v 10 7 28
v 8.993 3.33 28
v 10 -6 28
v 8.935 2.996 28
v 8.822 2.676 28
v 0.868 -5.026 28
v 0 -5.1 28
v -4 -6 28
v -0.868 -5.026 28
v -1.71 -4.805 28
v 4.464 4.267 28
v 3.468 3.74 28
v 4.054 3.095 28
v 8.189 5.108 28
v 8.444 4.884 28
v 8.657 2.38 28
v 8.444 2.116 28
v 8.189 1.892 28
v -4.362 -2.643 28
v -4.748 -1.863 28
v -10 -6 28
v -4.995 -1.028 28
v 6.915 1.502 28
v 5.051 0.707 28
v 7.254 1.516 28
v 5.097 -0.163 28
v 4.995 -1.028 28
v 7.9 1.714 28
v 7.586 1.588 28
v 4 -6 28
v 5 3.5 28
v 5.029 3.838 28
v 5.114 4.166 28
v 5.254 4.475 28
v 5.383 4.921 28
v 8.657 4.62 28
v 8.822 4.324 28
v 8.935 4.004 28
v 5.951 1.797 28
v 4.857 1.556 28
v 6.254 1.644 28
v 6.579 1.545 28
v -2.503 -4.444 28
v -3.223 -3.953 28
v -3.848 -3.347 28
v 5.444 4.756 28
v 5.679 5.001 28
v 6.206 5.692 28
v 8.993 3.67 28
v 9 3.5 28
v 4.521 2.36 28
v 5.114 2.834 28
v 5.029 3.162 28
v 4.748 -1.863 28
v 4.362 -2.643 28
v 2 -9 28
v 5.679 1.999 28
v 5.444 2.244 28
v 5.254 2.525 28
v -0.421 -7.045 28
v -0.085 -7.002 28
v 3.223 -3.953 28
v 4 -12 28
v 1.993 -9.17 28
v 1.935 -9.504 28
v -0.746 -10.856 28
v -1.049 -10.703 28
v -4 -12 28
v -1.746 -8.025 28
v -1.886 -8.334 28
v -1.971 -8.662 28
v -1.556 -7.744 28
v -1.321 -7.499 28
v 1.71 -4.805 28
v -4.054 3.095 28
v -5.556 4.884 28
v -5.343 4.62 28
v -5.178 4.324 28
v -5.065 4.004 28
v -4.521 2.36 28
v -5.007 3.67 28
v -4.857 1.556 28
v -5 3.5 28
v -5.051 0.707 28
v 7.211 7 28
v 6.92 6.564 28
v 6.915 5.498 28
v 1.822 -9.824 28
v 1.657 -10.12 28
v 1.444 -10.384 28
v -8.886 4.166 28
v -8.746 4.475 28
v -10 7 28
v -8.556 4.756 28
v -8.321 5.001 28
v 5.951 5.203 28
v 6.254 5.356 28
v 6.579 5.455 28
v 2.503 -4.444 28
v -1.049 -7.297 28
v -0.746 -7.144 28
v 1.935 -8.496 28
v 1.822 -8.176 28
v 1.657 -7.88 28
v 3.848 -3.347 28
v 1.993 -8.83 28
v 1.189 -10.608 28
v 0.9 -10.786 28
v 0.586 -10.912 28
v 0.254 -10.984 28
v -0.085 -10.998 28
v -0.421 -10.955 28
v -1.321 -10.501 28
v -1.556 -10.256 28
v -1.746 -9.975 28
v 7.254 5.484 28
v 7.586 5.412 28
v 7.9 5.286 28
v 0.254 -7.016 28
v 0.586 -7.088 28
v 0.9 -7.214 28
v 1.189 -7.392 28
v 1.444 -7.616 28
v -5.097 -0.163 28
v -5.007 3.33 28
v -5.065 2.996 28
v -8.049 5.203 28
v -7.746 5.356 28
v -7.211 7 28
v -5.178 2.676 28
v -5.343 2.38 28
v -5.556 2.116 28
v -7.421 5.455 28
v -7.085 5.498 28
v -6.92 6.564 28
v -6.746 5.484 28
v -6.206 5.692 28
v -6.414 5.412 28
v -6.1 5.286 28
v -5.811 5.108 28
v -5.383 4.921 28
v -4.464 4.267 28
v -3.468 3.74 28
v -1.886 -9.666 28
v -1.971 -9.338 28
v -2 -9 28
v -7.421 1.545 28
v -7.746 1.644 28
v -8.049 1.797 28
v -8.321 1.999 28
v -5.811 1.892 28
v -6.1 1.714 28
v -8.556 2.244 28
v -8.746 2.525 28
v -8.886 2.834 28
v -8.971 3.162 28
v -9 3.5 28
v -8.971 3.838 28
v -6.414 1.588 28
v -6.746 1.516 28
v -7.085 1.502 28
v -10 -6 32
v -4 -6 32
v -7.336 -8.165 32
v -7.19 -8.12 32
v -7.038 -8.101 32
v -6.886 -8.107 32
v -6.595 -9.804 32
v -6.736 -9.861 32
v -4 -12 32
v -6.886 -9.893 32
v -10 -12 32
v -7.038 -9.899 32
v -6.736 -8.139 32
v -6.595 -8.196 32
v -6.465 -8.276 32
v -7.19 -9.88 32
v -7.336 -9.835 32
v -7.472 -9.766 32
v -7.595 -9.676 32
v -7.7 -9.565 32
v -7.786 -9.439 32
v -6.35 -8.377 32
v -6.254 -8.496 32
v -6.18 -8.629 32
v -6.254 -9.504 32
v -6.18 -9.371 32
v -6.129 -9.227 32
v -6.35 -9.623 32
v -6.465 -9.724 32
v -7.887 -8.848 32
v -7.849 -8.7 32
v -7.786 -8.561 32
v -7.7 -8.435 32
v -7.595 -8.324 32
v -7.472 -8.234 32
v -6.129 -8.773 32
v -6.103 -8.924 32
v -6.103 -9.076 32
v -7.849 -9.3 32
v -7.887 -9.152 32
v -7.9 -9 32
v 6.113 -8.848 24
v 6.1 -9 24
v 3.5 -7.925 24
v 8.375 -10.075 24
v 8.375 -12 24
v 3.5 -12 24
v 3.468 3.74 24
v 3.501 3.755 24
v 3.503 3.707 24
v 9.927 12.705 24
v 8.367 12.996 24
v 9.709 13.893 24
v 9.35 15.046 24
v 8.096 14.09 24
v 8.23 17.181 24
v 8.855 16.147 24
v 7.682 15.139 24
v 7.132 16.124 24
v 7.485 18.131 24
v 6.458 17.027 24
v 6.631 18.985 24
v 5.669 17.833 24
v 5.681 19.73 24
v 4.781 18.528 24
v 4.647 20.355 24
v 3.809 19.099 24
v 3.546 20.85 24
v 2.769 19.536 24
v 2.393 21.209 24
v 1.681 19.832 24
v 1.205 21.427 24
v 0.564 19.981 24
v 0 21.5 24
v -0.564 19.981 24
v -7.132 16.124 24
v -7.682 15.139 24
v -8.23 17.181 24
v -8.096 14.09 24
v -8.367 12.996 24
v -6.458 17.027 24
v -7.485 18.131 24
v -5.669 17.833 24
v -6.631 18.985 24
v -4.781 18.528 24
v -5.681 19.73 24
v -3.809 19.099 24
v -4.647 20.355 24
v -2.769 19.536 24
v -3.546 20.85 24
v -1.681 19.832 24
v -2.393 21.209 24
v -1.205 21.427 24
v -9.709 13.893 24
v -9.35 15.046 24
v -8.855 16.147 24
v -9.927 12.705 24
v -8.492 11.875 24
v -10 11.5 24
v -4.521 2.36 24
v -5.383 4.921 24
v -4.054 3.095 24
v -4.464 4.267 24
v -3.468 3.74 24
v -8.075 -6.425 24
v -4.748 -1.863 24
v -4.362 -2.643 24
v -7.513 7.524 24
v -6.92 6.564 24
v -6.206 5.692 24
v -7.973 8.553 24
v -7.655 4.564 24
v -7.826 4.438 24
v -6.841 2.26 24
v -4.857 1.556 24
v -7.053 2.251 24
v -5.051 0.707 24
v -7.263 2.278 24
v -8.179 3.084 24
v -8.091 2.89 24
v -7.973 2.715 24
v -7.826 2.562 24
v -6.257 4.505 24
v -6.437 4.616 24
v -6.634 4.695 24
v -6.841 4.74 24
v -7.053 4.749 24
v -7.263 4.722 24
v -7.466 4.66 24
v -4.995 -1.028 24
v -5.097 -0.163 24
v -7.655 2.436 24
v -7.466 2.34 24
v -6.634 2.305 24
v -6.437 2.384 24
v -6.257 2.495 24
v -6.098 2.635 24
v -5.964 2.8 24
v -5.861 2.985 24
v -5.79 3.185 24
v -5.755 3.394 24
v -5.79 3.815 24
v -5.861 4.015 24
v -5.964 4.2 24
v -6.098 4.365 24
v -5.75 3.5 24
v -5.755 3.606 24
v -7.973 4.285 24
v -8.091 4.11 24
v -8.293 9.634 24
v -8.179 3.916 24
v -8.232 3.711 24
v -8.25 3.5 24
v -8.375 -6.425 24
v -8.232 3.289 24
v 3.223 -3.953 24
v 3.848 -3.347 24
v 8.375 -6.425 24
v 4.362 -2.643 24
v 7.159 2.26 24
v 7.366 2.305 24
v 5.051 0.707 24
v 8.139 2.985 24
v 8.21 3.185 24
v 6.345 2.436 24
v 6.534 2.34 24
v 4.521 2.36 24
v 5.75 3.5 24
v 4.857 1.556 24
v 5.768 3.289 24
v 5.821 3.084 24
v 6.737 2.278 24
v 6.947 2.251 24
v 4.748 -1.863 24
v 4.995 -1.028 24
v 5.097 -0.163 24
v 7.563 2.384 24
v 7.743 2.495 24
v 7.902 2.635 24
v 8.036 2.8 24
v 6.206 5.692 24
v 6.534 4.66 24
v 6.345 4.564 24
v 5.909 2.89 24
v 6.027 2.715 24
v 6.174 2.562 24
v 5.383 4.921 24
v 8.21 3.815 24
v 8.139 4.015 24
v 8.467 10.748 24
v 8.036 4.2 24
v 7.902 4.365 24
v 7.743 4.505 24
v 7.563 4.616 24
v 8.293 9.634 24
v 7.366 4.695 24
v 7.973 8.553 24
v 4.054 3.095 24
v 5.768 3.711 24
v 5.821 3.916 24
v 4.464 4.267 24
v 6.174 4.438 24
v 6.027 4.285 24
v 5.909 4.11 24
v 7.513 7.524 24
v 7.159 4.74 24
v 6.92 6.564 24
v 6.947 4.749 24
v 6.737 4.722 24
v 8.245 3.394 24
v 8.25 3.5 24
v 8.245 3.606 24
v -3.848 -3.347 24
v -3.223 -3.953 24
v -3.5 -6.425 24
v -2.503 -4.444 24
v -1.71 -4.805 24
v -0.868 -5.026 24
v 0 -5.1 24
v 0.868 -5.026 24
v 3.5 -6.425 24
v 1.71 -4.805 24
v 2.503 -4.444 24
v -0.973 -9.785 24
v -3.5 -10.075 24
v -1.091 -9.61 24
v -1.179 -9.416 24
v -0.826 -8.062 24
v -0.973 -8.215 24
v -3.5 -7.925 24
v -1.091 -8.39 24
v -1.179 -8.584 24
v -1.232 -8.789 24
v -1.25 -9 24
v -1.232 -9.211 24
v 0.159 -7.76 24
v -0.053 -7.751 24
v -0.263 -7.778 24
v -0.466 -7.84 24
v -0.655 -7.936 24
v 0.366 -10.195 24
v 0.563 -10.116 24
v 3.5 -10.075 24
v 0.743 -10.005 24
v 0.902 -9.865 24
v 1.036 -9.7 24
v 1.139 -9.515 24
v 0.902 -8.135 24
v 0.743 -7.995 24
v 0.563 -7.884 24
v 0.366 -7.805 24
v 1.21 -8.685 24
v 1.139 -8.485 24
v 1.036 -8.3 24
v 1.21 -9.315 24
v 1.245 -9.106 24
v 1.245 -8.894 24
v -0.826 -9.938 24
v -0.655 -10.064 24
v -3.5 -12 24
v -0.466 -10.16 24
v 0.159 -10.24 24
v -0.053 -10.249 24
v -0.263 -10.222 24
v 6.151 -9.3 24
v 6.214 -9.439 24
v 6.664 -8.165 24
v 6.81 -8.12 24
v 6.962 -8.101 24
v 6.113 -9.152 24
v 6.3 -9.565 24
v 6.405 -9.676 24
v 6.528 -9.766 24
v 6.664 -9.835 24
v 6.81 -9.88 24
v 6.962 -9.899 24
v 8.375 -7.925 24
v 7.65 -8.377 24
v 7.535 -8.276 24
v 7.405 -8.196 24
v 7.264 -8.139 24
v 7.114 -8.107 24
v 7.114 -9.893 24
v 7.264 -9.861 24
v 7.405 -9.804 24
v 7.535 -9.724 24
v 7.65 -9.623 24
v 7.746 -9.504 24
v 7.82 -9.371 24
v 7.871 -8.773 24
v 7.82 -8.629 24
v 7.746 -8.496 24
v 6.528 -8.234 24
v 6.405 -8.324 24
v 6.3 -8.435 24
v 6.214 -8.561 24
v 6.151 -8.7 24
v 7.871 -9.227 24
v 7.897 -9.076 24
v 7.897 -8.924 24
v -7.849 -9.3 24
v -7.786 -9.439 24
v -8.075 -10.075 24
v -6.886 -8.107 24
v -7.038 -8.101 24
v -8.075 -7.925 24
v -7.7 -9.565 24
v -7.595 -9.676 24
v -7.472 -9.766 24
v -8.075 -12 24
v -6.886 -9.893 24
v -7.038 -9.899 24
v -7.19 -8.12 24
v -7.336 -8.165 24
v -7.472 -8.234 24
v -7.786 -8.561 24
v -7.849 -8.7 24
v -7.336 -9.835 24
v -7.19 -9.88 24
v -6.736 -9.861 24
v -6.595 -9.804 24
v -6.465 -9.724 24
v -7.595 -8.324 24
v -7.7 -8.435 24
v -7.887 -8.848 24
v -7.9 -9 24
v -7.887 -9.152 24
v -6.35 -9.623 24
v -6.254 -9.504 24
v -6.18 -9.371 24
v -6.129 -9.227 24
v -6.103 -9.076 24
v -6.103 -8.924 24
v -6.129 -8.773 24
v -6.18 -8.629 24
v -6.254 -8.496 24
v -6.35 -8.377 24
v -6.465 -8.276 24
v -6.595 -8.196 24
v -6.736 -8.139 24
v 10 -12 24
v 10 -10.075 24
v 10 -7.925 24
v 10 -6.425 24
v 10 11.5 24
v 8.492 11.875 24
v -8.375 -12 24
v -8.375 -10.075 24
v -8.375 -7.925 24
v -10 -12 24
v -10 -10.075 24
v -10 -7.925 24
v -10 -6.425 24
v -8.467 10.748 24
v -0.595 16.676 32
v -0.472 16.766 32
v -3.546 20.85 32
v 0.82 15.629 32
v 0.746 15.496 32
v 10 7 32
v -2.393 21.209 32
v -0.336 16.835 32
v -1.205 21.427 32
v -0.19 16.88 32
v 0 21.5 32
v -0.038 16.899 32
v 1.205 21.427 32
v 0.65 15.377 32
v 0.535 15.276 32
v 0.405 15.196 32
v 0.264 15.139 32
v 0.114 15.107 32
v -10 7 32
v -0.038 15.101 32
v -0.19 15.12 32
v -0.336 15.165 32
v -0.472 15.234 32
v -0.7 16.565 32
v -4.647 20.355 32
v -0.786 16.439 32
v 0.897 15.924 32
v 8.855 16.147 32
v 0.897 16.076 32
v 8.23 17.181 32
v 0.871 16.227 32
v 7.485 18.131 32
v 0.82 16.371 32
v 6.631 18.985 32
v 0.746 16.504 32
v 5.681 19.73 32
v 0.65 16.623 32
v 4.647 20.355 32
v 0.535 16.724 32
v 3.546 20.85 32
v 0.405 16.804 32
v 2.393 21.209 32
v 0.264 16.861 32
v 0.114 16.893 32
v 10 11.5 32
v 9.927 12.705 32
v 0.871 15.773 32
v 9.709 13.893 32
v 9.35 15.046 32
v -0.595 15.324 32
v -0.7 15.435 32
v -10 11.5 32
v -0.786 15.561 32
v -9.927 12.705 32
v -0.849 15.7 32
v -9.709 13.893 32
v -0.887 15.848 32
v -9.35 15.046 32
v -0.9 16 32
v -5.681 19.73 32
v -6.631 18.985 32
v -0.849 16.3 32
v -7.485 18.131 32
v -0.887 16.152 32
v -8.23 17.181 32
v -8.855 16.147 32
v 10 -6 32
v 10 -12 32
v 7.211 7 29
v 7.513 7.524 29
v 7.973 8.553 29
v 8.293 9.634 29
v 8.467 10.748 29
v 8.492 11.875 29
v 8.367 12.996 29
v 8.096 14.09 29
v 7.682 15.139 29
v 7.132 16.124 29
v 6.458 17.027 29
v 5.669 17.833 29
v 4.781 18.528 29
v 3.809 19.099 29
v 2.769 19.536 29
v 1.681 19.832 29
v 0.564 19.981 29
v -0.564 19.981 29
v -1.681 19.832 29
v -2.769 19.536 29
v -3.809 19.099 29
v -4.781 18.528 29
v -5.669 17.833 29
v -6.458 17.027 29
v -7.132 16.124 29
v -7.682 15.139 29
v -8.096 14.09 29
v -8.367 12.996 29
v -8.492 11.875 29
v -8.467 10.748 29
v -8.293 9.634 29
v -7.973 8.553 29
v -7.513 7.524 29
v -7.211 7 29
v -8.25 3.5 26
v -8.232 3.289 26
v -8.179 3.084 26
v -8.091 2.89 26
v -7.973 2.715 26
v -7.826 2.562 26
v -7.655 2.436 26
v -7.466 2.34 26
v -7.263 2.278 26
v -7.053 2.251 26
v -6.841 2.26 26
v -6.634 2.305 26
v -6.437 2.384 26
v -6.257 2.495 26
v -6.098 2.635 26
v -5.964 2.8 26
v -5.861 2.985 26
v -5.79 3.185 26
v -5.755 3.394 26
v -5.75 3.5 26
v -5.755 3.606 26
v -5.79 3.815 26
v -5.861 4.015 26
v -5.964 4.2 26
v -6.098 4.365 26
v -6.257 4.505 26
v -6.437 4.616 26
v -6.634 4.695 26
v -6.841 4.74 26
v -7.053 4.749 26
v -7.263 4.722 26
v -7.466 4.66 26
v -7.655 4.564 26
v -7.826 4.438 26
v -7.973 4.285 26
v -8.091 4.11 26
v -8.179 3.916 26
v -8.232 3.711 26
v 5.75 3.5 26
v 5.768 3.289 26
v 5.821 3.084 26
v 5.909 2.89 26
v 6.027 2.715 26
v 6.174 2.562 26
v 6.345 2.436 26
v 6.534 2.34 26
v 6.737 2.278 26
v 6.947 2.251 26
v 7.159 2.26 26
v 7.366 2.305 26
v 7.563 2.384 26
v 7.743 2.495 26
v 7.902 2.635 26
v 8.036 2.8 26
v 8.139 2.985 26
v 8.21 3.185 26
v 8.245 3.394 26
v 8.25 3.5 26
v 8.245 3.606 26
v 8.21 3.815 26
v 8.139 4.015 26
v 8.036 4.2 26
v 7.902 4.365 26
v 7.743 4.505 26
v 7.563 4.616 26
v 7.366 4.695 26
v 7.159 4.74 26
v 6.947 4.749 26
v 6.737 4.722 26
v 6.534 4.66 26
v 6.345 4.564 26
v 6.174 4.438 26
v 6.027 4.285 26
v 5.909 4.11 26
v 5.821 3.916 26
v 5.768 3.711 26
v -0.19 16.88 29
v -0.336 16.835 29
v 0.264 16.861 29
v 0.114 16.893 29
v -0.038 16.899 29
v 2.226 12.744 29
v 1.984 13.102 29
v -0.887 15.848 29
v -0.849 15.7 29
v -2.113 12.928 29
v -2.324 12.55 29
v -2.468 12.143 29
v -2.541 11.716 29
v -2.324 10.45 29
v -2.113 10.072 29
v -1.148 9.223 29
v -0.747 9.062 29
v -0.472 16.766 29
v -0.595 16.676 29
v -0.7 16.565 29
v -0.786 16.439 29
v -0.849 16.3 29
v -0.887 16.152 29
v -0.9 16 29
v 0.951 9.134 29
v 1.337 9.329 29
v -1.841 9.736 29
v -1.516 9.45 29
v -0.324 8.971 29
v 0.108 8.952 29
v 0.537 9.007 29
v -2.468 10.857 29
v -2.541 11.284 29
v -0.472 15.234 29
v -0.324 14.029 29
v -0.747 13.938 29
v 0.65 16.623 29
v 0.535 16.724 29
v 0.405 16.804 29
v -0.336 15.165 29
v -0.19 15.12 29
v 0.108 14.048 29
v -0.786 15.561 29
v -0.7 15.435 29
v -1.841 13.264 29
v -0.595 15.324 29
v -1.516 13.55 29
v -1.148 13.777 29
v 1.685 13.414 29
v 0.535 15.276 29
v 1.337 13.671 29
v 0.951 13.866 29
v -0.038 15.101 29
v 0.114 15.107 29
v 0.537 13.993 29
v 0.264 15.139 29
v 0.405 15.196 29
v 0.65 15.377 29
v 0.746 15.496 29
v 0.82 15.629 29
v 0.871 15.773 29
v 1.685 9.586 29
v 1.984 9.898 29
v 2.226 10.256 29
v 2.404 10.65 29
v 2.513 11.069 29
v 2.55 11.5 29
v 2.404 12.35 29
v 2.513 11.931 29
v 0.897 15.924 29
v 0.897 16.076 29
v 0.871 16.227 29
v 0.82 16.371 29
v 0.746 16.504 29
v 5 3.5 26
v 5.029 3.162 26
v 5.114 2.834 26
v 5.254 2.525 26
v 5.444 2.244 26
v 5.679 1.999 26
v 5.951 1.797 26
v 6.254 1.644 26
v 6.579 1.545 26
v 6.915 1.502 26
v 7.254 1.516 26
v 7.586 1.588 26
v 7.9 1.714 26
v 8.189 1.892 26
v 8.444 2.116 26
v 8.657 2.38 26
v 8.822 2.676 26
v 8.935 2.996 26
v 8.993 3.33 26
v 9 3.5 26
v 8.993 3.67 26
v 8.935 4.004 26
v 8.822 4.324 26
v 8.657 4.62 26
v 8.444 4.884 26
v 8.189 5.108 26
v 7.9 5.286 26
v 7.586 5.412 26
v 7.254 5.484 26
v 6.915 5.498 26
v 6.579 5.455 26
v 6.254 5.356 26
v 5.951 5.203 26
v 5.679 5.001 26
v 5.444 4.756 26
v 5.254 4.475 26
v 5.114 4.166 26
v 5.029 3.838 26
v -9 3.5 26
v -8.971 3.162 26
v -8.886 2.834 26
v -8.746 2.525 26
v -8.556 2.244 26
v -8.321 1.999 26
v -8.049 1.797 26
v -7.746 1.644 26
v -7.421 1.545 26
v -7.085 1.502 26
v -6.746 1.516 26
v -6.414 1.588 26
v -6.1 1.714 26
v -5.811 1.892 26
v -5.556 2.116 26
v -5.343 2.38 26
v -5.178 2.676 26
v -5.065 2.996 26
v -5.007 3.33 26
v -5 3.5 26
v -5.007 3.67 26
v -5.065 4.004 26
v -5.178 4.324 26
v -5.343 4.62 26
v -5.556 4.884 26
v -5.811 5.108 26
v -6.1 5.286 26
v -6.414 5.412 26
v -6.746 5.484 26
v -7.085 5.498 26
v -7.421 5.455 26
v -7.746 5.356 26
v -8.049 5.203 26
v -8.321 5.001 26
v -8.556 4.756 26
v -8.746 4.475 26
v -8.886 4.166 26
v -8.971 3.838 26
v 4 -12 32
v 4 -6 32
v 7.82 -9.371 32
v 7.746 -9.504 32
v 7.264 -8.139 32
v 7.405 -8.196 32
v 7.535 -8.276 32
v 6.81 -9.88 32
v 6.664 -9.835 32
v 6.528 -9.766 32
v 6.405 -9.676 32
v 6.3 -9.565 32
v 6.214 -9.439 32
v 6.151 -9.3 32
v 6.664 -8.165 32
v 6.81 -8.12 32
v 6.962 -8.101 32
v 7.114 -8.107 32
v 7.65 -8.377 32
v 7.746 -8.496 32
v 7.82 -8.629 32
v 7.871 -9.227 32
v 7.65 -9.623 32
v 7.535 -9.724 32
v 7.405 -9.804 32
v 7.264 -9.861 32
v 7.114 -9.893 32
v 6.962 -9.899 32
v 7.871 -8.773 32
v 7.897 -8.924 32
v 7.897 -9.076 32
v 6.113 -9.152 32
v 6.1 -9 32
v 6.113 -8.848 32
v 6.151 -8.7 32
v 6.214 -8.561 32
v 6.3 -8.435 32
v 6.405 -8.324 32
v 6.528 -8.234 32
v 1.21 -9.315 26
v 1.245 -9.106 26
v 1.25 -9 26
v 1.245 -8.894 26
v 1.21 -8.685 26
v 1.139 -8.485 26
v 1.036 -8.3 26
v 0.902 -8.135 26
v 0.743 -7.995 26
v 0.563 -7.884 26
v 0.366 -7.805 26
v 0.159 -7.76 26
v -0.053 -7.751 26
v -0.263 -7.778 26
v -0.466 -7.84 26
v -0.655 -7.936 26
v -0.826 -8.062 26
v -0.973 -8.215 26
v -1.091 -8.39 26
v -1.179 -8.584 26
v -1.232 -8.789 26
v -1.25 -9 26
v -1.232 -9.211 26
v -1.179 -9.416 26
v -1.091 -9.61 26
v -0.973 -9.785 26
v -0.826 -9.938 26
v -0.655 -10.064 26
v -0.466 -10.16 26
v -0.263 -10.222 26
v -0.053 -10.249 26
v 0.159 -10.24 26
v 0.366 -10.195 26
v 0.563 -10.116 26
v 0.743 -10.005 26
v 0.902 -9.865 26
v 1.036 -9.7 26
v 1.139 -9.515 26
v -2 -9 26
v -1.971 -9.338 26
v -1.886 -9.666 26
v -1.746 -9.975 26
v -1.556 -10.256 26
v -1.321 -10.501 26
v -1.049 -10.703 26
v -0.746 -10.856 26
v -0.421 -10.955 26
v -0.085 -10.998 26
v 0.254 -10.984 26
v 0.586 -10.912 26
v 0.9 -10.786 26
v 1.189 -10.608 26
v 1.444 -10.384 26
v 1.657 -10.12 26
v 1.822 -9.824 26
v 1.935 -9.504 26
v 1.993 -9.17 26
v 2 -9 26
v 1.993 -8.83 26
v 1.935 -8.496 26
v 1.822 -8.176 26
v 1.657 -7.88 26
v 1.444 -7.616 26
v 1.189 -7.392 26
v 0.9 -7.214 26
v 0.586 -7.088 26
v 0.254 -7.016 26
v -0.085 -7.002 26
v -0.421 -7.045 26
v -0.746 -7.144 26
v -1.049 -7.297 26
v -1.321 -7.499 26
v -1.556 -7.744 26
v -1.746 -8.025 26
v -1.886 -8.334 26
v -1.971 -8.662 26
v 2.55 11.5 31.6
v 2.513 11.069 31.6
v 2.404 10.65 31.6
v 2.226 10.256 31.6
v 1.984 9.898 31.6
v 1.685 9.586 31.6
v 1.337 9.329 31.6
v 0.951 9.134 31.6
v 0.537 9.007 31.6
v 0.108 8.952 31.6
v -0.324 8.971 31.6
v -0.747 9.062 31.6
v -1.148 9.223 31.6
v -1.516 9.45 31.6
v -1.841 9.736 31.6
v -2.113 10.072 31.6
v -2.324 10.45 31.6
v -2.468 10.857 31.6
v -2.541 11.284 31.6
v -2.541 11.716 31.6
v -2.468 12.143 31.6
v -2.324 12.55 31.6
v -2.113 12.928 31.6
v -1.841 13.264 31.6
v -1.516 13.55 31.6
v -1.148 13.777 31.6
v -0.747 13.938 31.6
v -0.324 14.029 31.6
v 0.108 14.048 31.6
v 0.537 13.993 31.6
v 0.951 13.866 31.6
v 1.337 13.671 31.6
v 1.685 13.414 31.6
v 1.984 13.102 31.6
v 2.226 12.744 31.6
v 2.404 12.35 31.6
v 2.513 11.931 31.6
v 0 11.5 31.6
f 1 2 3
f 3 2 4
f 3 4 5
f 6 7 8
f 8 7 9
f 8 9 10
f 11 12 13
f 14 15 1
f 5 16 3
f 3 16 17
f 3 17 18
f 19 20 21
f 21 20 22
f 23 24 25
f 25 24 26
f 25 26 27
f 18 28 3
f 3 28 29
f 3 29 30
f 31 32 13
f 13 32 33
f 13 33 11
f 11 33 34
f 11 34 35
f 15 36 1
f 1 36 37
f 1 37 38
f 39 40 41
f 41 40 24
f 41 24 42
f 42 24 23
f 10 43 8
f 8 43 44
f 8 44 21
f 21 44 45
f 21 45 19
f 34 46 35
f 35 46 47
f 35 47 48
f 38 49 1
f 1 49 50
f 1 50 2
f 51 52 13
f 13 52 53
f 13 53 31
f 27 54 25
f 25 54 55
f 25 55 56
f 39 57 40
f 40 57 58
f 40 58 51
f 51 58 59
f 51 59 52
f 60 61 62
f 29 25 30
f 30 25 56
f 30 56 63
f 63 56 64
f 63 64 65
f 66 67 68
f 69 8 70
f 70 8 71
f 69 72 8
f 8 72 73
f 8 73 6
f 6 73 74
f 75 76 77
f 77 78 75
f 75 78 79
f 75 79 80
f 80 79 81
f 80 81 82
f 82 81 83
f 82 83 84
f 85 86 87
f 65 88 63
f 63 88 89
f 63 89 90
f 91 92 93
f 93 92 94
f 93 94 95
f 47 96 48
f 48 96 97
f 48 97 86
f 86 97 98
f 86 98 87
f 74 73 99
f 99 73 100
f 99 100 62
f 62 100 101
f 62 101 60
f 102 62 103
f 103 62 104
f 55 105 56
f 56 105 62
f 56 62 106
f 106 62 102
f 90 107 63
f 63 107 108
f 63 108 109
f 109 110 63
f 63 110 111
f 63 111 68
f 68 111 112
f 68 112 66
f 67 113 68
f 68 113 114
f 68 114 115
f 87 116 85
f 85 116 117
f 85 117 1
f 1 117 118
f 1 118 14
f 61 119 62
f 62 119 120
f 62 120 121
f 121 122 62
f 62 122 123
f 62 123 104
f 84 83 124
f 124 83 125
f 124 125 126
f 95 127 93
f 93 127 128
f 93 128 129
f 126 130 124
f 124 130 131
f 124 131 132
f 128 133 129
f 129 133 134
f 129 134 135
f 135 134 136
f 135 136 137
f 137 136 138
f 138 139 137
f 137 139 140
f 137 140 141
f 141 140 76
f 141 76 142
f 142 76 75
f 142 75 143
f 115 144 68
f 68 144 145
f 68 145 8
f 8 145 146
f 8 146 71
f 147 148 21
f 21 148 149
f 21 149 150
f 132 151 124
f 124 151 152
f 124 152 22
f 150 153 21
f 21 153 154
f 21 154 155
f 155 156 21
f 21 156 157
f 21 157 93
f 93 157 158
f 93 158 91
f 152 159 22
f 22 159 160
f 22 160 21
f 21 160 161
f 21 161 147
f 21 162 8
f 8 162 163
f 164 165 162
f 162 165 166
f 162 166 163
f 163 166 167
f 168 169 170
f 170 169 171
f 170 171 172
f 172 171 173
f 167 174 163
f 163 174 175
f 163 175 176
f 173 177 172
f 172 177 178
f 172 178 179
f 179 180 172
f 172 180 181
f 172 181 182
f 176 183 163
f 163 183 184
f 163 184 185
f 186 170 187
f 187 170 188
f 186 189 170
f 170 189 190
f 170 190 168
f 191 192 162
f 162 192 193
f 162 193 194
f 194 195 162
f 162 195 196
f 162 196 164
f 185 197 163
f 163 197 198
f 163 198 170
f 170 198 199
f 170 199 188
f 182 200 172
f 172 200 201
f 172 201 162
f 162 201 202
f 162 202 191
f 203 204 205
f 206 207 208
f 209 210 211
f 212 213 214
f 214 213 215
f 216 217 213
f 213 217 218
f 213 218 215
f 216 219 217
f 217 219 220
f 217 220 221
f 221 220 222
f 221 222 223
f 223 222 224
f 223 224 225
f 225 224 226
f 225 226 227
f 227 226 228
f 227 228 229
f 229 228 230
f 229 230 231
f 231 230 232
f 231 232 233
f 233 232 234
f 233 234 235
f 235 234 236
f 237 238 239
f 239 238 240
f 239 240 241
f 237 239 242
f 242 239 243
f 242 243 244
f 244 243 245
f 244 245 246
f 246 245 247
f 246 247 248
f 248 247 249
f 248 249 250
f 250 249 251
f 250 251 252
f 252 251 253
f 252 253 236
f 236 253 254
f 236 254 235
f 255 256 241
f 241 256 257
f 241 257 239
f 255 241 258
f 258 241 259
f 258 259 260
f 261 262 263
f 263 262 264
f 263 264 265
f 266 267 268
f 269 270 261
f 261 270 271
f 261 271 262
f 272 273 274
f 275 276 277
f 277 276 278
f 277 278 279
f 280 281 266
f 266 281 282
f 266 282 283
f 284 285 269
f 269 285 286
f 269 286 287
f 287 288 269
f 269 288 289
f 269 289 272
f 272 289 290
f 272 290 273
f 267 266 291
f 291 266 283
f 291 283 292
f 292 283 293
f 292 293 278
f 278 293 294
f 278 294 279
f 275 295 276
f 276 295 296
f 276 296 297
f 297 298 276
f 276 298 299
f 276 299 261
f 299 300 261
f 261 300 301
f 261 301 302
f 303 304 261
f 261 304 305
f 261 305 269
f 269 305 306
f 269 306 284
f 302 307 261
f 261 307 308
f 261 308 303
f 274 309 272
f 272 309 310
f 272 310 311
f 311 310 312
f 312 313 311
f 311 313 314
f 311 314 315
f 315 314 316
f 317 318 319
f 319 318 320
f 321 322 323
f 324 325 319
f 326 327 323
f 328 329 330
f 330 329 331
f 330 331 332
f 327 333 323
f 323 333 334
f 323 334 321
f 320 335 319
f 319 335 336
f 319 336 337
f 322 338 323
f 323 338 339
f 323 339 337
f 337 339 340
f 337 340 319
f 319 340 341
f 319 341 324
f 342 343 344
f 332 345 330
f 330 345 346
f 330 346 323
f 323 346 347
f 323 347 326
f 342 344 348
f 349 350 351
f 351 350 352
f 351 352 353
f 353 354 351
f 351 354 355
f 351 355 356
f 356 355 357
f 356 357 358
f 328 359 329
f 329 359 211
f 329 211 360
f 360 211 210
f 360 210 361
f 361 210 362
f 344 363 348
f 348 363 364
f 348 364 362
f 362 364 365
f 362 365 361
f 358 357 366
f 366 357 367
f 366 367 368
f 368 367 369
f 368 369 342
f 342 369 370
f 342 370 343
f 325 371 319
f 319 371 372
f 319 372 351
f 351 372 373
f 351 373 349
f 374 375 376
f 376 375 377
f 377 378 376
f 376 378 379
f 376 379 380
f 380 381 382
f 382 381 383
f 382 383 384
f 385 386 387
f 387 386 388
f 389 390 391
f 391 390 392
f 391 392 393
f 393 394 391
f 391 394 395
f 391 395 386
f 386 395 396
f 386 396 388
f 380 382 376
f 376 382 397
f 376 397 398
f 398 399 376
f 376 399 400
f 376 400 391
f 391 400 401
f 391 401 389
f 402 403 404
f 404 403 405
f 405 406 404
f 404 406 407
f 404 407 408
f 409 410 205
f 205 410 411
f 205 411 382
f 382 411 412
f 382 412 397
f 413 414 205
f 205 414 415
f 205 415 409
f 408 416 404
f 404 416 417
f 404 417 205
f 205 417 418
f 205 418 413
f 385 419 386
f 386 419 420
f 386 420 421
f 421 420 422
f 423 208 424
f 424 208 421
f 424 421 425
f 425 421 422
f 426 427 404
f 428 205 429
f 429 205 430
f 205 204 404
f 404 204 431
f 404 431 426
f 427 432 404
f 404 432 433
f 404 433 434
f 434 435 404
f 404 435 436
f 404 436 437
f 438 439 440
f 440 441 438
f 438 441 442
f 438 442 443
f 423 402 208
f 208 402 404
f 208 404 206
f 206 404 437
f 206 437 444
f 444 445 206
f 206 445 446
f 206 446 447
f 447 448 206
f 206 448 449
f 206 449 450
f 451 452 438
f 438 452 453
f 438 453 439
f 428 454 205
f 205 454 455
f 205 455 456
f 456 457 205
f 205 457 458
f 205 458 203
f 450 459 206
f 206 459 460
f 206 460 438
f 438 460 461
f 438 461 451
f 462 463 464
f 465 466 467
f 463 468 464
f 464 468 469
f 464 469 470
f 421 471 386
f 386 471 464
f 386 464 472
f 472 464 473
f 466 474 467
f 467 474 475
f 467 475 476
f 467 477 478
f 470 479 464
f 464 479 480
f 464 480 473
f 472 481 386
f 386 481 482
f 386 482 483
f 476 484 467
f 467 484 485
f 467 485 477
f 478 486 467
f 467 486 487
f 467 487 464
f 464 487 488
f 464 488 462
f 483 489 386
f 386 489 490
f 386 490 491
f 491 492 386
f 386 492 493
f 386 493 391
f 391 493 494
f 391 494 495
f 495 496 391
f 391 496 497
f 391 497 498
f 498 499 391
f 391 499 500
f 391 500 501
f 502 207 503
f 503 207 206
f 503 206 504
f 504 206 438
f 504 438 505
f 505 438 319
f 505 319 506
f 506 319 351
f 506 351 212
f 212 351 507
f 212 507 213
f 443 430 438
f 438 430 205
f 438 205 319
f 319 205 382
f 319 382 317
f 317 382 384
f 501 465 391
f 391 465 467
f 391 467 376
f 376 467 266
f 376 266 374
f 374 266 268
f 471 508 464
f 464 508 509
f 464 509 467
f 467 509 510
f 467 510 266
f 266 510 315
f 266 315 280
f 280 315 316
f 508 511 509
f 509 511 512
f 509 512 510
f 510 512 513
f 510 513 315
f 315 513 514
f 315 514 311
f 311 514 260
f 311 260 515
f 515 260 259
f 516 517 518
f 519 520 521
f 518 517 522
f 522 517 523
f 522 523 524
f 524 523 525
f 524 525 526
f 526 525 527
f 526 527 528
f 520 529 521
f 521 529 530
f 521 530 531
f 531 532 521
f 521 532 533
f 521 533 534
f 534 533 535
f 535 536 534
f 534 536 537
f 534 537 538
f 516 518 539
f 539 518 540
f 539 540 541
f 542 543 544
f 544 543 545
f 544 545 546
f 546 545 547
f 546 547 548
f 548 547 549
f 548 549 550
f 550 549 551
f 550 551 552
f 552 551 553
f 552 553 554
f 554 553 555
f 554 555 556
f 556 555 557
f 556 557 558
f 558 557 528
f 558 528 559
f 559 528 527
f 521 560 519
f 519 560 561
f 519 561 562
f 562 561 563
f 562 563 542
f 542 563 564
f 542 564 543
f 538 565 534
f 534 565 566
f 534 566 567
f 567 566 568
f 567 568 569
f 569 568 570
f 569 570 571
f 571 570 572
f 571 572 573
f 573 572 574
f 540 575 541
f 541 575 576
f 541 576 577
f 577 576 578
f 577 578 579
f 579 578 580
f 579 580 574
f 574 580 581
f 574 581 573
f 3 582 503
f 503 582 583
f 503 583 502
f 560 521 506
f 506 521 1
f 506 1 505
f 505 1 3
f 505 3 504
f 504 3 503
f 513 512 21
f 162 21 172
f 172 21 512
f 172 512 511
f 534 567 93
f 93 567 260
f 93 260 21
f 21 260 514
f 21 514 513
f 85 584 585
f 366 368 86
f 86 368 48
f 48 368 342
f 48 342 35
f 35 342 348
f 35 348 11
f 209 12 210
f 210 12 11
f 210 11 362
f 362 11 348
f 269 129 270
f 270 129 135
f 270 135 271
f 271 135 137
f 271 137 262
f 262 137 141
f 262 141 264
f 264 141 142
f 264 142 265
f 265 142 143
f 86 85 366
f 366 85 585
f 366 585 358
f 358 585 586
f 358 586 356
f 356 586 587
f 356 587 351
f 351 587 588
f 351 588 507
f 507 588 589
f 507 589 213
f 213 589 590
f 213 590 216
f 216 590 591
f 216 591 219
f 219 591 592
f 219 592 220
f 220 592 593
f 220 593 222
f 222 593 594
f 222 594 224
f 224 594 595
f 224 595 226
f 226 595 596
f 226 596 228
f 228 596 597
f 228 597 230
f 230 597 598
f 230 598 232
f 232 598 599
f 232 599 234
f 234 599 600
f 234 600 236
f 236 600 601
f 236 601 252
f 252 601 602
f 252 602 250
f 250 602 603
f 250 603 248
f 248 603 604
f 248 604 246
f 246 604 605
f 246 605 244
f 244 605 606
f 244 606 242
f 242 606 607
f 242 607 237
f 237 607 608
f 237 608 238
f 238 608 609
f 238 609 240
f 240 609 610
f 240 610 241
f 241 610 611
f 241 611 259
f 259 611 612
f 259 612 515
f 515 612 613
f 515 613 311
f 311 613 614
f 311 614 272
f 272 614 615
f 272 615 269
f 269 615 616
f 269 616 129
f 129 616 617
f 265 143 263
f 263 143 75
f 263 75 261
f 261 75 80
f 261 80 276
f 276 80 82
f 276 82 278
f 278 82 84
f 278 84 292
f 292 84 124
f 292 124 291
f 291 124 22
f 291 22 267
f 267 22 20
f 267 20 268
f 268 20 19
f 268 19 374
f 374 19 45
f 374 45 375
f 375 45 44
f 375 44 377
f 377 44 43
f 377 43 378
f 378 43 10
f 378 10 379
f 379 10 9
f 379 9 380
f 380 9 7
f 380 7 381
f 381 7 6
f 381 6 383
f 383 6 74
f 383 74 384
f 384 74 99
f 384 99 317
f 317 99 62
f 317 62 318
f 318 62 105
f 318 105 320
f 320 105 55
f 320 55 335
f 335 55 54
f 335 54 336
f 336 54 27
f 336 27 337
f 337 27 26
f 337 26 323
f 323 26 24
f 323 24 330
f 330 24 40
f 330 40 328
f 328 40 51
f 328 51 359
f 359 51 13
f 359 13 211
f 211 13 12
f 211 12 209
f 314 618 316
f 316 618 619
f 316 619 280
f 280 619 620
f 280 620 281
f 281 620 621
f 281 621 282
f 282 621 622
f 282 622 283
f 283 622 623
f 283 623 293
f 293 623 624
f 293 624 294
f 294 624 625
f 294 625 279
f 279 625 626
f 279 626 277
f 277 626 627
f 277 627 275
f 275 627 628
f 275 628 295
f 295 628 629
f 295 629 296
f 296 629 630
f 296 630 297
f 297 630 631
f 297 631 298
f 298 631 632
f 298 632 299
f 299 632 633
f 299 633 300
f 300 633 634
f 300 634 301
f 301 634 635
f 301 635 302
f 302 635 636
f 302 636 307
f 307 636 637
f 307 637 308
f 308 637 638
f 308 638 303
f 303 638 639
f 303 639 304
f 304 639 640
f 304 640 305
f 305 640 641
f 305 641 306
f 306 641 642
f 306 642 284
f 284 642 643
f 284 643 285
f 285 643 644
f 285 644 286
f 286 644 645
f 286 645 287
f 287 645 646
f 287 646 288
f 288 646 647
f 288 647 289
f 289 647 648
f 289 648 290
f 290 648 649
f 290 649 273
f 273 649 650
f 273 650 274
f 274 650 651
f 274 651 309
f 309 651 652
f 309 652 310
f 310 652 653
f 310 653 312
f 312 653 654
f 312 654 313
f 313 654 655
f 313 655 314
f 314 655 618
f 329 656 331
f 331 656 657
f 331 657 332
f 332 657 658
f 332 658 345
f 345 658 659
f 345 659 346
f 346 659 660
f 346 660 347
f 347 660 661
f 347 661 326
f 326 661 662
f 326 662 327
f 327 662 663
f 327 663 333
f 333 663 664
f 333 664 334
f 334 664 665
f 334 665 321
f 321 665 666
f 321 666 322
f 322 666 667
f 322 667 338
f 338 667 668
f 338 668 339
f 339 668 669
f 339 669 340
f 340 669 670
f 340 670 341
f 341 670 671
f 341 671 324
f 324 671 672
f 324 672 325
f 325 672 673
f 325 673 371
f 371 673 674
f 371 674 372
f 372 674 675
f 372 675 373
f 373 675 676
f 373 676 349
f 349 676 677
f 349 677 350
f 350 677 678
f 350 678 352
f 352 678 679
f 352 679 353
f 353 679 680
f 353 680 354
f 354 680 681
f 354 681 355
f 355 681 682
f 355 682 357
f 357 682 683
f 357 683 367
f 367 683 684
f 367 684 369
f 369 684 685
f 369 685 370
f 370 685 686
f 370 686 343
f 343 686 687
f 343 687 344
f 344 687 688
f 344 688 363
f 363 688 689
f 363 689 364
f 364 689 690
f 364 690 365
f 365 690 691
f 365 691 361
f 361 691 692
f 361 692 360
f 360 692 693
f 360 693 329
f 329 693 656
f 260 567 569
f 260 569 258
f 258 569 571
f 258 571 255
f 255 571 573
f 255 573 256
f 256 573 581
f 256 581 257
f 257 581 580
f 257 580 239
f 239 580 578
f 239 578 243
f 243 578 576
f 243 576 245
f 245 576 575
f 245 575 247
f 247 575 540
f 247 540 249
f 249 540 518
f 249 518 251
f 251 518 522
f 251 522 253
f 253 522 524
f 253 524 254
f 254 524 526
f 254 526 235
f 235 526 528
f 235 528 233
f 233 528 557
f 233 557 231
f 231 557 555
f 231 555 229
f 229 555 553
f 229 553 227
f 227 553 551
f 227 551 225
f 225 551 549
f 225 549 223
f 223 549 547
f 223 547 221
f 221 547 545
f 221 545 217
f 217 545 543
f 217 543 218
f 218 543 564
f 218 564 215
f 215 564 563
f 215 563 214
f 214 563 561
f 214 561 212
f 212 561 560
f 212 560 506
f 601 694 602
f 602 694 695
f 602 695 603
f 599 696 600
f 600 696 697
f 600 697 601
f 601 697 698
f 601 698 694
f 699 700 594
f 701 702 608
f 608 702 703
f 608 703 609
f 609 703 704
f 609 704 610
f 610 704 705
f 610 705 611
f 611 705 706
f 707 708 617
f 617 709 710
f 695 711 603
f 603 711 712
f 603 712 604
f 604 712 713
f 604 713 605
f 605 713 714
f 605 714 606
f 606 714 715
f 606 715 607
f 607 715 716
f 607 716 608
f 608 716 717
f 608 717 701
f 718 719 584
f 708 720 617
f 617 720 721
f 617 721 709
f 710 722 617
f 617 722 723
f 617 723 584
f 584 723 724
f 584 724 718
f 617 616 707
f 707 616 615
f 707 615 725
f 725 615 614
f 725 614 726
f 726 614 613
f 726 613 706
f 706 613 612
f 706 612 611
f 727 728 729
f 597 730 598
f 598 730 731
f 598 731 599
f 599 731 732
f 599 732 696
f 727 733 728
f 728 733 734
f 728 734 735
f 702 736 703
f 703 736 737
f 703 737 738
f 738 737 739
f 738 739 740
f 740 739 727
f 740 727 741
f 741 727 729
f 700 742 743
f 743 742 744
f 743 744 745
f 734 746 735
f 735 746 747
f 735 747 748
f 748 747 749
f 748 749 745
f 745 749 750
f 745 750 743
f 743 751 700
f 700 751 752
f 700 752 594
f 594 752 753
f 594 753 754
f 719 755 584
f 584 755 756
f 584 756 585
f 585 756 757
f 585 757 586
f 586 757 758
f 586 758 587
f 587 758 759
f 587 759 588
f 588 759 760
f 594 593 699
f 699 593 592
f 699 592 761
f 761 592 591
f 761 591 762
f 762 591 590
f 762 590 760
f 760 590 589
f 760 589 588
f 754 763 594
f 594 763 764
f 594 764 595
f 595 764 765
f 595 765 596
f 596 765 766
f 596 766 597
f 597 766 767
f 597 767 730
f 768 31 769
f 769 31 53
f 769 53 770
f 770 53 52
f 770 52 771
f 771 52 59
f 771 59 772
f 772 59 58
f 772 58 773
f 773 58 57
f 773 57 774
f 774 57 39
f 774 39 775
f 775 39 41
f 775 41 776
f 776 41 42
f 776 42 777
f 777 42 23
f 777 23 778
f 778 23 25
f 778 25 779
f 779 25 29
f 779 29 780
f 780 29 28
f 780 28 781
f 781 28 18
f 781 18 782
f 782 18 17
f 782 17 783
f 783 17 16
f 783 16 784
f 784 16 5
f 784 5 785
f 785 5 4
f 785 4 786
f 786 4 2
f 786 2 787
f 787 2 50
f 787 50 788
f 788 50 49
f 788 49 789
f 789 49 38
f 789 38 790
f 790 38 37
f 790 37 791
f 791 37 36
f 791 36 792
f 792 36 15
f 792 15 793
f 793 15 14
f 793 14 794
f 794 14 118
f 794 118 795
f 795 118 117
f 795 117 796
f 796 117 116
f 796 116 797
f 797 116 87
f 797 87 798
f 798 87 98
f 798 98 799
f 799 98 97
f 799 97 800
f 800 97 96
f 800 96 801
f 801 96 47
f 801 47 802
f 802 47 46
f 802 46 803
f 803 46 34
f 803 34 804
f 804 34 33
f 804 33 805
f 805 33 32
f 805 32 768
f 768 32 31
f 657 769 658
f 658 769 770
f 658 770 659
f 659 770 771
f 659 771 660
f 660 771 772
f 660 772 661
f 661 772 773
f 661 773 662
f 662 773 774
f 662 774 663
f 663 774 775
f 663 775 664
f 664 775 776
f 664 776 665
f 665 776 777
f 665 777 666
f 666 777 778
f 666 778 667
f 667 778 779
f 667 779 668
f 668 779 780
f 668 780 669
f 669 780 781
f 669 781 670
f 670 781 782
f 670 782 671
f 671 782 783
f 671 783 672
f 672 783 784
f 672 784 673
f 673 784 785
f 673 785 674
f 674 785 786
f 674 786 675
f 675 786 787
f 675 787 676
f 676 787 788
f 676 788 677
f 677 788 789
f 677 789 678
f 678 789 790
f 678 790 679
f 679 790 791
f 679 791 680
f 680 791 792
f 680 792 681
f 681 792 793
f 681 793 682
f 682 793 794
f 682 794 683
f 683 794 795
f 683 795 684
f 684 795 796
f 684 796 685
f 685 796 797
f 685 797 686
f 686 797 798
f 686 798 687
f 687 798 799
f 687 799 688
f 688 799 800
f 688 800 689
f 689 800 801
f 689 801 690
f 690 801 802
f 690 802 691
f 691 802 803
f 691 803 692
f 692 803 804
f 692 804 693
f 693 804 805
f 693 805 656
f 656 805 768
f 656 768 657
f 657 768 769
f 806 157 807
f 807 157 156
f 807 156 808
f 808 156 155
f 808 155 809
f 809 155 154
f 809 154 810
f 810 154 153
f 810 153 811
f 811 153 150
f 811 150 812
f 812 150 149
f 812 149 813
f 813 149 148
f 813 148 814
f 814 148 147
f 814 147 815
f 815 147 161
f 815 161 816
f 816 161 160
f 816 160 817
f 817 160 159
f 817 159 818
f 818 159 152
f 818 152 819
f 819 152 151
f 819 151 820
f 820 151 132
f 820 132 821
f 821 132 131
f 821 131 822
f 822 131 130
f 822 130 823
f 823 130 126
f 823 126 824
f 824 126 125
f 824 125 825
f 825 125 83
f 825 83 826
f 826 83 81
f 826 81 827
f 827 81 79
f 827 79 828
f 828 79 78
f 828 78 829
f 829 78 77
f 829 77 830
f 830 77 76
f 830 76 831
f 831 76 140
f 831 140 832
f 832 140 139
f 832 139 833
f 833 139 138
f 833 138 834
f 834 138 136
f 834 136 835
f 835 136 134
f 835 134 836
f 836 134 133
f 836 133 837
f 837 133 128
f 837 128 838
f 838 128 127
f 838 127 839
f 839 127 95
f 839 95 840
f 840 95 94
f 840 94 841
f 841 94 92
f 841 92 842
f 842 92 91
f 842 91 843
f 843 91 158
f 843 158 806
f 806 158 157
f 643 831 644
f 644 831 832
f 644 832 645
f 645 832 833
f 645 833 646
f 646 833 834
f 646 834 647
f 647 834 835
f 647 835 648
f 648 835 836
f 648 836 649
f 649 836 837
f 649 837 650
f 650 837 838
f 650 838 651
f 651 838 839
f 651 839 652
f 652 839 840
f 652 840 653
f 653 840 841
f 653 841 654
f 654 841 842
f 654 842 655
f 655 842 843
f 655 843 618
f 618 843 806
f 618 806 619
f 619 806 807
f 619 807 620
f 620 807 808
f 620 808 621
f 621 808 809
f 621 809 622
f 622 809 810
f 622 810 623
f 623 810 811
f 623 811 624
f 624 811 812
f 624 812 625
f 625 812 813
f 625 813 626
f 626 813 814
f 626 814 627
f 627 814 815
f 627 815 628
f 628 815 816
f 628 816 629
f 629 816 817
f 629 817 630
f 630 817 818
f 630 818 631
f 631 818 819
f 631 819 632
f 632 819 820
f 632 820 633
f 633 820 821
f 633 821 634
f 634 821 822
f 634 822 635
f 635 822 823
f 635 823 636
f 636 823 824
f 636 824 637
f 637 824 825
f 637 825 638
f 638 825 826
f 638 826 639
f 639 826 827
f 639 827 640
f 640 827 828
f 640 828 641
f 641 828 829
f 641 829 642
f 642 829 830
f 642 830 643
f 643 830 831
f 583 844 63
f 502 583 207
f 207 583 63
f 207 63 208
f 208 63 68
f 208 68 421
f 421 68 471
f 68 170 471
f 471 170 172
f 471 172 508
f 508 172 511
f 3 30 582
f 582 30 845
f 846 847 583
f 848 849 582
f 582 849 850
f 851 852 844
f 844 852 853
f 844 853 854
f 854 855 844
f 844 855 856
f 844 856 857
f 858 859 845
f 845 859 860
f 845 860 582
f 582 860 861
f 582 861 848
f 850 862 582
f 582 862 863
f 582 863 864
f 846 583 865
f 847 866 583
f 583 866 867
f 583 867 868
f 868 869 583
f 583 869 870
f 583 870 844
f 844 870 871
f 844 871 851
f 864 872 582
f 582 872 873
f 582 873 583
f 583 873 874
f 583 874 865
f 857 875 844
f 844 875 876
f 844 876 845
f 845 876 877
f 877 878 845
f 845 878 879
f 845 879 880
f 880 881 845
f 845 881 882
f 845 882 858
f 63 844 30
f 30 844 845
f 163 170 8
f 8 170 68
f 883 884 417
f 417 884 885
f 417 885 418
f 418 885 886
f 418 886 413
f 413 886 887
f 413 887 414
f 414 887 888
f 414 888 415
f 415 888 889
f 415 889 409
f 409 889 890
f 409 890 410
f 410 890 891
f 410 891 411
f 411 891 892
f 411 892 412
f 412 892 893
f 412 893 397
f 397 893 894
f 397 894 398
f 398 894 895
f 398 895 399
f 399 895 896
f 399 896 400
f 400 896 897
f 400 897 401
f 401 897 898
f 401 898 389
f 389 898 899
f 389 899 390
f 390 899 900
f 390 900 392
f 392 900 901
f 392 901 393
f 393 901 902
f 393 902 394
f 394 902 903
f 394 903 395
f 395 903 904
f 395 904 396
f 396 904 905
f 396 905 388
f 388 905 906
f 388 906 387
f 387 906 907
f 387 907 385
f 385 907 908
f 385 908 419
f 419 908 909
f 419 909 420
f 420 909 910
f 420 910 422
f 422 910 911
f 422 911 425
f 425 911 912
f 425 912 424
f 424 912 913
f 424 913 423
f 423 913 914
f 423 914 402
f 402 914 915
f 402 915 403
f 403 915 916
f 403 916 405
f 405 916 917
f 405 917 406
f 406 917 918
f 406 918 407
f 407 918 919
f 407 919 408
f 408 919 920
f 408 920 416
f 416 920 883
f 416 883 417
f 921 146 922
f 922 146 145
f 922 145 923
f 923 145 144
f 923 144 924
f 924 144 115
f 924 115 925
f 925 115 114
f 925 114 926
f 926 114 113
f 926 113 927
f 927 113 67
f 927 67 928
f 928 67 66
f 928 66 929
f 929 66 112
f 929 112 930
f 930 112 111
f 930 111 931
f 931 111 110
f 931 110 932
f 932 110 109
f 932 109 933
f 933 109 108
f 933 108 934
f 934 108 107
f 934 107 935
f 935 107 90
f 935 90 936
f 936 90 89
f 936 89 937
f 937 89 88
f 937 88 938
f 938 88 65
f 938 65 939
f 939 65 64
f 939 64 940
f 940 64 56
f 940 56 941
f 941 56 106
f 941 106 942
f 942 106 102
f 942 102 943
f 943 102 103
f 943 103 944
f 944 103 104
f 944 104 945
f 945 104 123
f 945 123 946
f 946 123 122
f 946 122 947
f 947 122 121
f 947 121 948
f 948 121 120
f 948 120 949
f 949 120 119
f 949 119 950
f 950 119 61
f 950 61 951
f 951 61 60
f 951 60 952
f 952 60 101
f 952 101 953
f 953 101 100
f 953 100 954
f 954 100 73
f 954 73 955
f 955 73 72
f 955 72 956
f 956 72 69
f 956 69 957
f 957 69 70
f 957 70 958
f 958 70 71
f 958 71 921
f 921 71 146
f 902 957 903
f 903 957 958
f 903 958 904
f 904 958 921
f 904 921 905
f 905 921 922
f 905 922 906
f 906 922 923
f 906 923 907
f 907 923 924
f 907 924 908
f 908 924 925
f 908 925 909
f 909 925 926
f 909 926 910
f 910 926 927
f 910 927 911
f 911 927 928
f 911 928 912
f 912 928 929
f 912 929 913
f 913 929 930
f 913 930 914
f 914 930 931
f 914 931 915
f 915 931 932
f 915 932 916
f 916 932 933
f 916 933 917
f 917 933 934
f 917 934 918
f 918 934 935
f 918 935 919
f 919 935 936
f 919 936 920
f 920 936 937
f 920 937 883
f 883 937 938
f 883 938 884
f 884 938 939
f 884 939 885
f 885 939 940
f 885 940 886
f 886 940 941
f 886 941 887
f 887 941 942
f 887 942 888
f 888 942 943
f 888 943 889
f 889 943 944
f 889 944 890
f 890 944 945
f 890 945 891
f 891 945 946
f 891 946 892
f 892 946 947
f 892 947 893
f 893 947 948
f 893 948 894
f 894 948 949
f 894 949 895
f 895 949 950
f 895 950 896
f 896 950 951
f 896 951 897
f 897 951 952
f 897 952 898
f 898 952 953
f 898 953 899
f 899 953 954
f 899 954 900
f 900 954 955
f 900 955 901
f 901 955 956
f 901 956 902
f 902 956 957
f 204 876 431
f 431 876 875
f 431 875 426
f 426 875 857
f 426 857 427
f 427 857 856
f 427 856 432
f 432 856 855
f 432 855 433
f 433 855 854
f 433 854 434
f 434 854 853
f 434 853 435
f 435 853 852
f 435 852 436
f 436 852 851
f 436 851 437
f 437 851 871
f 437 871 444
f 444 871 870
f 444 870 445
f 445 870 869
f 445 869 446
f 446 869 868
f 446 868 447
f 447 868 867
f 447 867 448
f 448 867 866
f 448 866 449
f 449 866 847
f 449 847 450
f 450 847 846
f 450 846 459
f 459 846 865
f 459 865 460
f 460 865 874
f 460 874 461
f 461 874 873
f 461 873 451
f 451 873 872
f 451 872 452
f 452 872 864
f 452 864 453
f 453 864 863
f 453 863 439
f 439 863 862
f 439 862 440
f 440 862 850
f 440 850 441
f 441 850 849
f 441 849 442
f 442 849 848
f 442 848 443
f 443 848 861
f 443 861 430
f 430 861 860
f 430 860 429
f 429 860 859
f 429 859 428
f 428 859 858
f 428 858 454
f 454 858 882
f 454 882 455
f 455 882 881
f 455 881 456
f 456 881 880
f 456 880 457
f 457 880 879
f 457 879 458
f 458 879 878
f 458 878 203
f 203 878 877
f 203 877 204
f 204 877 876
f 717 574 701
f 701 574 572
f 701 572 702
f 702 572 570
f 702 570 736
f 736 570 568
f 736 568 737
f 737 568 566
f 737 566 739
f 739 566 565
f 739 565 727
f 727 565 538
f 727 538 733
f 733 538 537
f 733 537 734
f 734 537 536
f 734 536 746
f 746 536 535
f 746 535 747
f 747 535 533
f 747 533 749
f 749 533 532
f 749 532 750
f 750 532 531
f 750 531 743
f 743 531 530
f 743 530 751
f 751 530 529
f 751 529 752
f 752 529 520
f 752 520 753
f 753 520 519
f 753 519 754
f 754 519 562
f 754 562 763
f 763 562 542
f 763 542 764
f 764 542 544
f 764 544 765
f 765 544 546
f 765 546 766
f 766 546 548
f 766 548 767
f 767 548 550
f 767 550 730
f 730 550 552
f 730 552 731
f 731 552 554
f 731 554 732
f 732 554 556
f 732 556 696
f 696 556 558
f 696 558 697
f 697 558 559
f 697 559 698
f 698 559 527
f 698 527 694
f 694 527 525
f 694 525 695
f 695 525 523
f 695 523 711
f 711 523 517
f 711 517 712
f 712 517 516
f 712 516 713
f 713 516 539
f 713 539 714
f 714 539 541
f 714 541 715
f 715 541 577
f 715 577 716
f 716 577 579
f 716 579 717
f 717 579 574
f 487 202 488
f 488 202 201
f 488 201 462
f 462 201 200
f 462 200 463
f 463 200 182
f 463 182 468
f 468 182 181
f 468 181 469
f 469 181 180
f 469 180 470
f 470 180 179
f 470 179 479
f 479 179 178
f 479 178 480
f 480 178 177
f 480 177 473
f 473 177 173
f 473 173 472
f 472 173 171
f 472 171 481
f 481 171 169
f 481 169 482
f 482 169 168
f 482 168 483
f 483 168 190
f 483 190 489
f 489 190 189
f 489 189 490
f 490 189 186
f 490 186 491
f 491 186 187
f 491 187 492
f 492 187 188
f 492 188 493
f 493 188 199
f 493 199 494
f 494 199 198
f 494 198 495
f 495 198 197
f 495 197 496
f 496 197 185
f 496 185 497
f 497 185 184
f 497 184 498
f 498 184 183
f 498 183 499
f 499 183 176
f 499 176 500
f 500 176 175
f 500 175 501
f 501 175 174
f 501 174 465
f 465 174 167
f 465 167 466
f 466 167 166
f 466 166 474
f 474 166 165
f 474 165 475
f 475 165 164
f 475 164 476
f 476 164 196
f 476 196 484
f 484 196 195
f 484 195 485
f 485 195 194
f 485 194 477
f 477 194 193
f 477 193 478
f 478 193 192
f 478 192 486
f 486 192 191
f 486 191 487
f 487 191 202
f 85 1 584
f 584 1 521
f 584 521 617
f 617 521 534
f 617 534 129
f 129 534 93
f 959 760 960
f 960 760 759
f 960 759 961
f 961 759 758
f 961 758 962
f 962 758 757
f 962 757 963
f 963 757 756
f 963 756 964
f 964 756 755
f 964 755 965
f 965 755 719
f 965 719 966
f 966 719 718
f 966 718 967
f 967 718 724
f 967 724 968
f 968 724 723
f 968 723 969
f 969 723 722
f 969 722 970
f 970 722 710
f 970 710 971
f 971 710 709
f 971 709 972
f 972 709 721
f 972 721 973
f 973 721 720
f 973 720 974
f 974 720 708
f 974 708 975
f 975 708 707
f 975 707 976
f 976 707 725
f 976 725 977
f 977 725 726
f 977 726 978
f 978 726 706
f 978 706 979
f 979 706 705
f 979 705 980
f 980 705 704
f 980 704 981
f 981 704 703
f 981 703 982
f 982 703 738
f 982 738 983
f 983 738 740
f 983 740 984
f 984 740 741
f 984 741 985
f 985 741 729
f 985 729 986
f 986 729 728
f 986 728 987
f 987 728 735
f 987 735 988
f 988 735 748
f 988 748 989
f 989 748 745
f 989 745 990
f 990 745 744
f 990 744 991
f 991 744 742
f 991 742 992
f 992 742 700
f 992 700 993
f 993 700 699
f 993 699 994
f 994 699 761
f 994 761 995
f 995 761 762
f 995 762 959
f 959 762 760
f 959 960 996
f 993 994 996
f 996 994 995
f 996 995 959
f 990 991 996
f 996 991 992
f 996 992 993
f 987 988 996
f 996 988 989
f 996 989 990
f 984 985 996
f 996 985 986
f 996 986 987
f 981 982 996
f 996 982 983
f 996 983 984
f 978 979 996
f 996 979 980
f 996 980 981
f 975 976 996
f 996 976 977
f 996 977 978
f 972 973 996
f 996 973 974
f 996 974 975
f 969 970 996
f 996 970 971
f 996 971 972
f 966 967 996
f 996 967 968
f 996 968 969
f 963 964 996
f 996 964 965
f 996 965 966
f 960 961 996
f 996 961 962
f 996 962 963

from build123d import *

# Parameters (mm, degrees)
SKETCH_1_R          = 1.25
EXTRUDE_1_DEPTH     = 4
EXTRUDE_START       = -8
EXTRUDE_2_DEPTH     = 8
EXTRUDE_START_2     = -3
EXTRUDE_3_DEPTH     = 3
CUT_EXTRUDE_START   = -4
SKETCH_1_5_R        = 2
CUT_EXTRUDE_1_DEPTH = 6
SKETCH_4_W          = 20
SKETCH_4_H          = 17.5
CUT_EXTRUDE_2_DEPTH = 4
EXTRUDE_START_3     = -4
SKETCH_5_W          = 20
SKETCH_5_H          = 6
EXTRUDE_4_DEPTH     = 8
SKETCH_6_W          = 8
SKETCH_6_H          = 6
SKETCH_6_R          = 2
SKETCH_6_R_2        = 1.25
CUT_EXTRUDE_3_DEPTH = 4
SKETCH_6_3_R        = 1.25
CUT_EXTRUDE_4_DEPTH = 26.024987512
SKETCH_6_4_R        = 2
CUT_EXTRUDE_5_DEPTH = 6
SKETCH_7_R          = 0.9
CUT_EXTRUDE_6_DEPTH = 26.024987512
SKETCH_8_W          = 20
SKETCH_8_H          = 4.5
EXTRUDE_5_DEPTH     = 4
SKETCH_9_R          = 8.5
CUT_EXTRUDE_7_DEPTH = 1
SKETCH_10_R         = 2.55
CUT_EXTRUDE_8_DEPTH = 2.6
SKETCH_11_W         = 47.635441337
SKETCH_11_H         = 39.861258083
CUT_EXTRUDE_9_DEPTH = 30.769951293


with BuildPart() as part:
    # 草图1 → 凸台-拉伸1 (new, symmetric)
    with BuildSketch(Plane.XY):
        with BuildLine():
            Line((-10, 6), (-10, -6))
            Line((-10, -6), (10, -6))
            Line((10, -6), (10, 6))
            Line((10, 6), (6.480740698, 6))
            ThreePointArc((6.480740698, 6), (5.10105555, 4.70079179), (3.467802184, 3.739565217))
            ThreePointArc((3.467802184, 3.739565217), (0, -5.1), (-3.467802184, 3.739565217))
            ThreePointArc((-3.467802184, 3.739565217), (-5.10105555, 4.70079179), (-6.480740698, 6))
            Line((-6.480740698, 6), (-10, 6))
        make_face()
        with Locations((-7, 3.5)):
            Circle(SKETCH_1_R, mode=Mode.SUBTRACT)
        with Locations((7, 3.5)):
            Circle(SKETCH_1_R, mode=Mode.SUBTRACT)
    extrude(amount=EXTRUDE_1_DEPTH, both=True)

    # 草图2 → 凸台-拉伸2 (add)
    with BuildSketch(Plane(origin=(0, 0, -4), x_dir=(-1, 0, 0), z_dir=(0, 0, -1)).offset(EXTRUDE_START)):
        with BuildLine():
            Line((6.480740698, 6), (10, 6))
            Line((10, 6), (10, 11.5))
            ThreePointArc((10, 11.5), (0, 21.5), (-10, 11.5))
            Line((-10, 11.5), (-10, 6))
            Line((-10, 6), (-6.480740698, 6))
            ThreePointArc((-6.480740698, 6), (0, 20), (6.480740698, 6))
        make_face()
    extrude(amount=EXTRUDE_2_DEPTH)

    # 草图2<4> → 凸台-拉伸3 (add)
    with BuildSketch(Plane(origin=(0, 0, -4), x_dir=(-1, 0, 0), z_dir=(0, 0, -1)).offset(EXTRUDE_START_2)):
        with BuildLine():
            Line((-6.480740698, 6), (6.480740698, 6))
            ThreePointArc((6.480740698, 6), (7.979232292, 8.570520177), (8.5, 11.5))
            ThreePointArc((8.5, 11.5), (-2.929479823, 19.479232292), (-6.480740698, 6))
        make_face()
    extrude(amount=EXTRUDE_3_DEPTH)

    # 草图1<5> → 切除-拉伸1 (cut)
    with BuildSketch(Plane.XY.offset(CUT_EXTRUDE_START)):
        with Locations((-7, 3.5)):
            Circle(SKETCH_1_5_R)
        with Locations((7, 3.5)):
            Circle(SKETCH_1_5_R)
    extrude(amount=CUT_EXTRUDE_1_DEPTH, mode=Mode.SUBTRACT)

    # 草图4 → 切除-拉伸2 (cut)
    with BuildSketch(Plane(origin=(0, 0, -4), x_dir=(-1, 0, 0), z_dir=(0, 0, -1))):
        with Locations((0, 2.75)):
            Rectangle(SKETCH_4_W, SKETCH_4_H)
    extrude(amount=-CUT_EXTRUDE_2_DEPTH, mode=Mode.SUBTRACT)

    # 草图5 → 凸台-拉伸4 (add)
    with BuildSketch(Plane(origin=(0, 0, 0), x_dir=(-1, 0, 0), z_dir=(0, 0, -1)).offset(EXTRUDE_START_3)):
        with Locations((0, -9)):
            Rectangle(SKETCH_5_W, SKETCH_5_H)
    extrude(amount=EXTRUDE_4_DEPTH)

    # 草图6 → 切除-拉伸3 (cut)
    # profile 1 of 3: a face of its own
    with BuildSketch(Plane(origin=(0, 0, -4), x_dir=(-1, 0, 0), z_dir=(0, 0, -1))):
        with Locations((0, -9)):
            Rectangle(SKETCH_6_W, SKETCH_6_H)
        with Locations((0, -9)):
            Circle(SKETCH_6_R, mode=Mode.SUBTRACT)
    # profile 2 of 3: a face of its own
    with BuildSketch(Plane(origin=(0, 0, -4), x_dir=(-1, 0, 0), z_dir=(0, 0, -1))):
        with Locations((0, -9)):
            Circle(SKETCH_6_R)
        with Locations((0, -9)):
            Circle(SKETCH_6_R_2, mode=Mode.SUBTRACT)
    # profile 3 of 3: a face of its own
    with BuildSketch(Plane(origin=(0, 0, -4), x_dir=(-1, 0, 0), z_dir=(0, 0, -1))):
        with Locations((0, -9)):
            Circle(SKETCH_6_R_2)
    extrude(amount=-CUT_EXTRUDE_3_DEPTH, mode=Mode.SUBTRACT)

    # 草图6<3> → 切除-拉伸4 (cut, through all)
    with BuildSketch(Plane(origin=(0, 0, -4), x_dir=(-1, 0, 0), z_dir=(0, 0, -1))):
        with Locations((0, -9)):
            Circle(SKETCH_6_3_R)
    extrude(amount=-CUT_EXTRUDE_4_DEPTH, mode=Mode.SUBTRACT)

    # 草图6<4> → 切除-拉伸5 (cut)
    with BuildSketch(Plane(origin=(0, 0, -4), x_dir=(-1, 0, 0), z_dir=(0, 0, -1))):
        with Locations(Location((0, -9, 0), (0, 0, 180))):
            Circle(SKETCH_6_4_R)
    extrude(amount=-CUT_EXTRUDE_5_DEPTH, mode=Mode.SUBTRACT)

    # 草图7 → 切除-拉伸6 (cut, through all)
    with BuildSketch(Plane(origin=(0, 0, -4), x_dir=(-1, 0, 0), z_dir=(0, 0, -1))):
        with Locations((7, -9)):
            Circle(SKETCH_7_R)
        with Locations((-7, -9)):
            Circle(SKETCH_7_R)
        with Locations((0, 16)):
            Circle(SKETCH_7_R)
    extrude(amount=-CUT_EXTRUDE_6_DEPTH, mode=Mode.SUBTRACT)

    # 草图8 → 凸台-拉伸5 (add)
    with BuildSketch(Plane(origin=(0, 0, 0), x_dir=(-1, 0, 0), z_dir=(0, 0, -1))):
        with Locations((0, 9.25)):
            Rectangle(SKETCH_8_W, SKETCH_8_H)
    extrude(amount=EXTRUDE_5_DEPTH)

    # 草图9 → 切除-拉伸7 (cut)
    with BuildSketch(Plane.XY):
        with Locations((0, 11.5)):
            Circle(SKETCH_9_R)
    extrude(amount=-CUT_EXTRUDE_7_DEPTH, mode=Mode.SUBTRACT)

    # 草图10 → 切除-拉伸8 (cut)
    with BuildSketch(Plane.XY.offset(-1)):
        with Locations((0, 11.5)):
            Circle(SKETCH_10_R)
    extrude(amount=-CUT_EXTRUDE_8_DEPTH, mode=Mode.SUBTRACT)


with BuildPart() as body_2:
    # 镜向1: mirrored copy
    add(part.part.mirror(Plane.XY.offset(14)))


with BuildPart() as part_1:
    add(part.part)

    # 草图11 → 切除-拉伸9 (cut, through all)
    with BuildSketch(Plane.XY.offset(14)):
        with Locations((-3.268127992, 5.220412363)):
            Rectangle(SKETCH_11_W, SKETCH_11_H)
    extrude(amount=-CUT_EXTRUDE_9_DEPTH, mode=Mode.SUBTRACT)


solid = body_2.part
